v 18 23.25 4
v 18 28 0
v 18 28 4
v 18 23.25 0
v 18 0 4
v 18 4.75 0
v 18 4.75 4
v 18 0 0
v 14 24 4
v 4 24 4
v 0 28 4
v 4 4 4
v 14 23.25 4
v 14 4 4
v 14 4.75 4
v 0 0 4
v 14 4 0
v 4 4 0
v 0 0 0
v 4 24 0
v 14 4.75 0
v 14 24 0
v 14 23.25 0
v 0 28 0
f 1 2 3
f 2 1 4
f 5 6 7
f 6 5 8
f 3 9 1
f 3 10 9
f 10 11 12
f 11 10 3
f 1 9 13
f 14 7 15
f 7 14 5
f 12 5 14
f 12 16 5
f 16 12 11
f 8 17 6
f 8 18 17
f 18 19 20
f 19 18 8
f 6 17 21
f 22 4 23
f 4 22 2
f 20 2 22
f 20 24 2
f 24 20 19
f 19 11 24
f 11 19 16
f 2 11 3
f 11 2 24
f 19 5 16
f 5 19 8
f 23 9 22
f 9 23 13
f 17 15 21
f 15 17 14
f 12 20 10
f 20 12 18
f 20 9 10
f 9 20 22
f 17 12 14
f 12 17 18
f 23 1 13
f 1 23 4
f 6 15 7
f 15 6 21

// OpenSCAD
// Jeff's Simple Parametric Clip (SPC)
//
// Free Software for a Voluntary World
//
// Google "voluntaryism"
//
// Thanks and enjoy!
//
// #####################################################################
//
// #####################################################################
//
// This is free and unencumbered software released into the public domain.
// 
// Anyone is free to copy, modify, publish, use, compile, sell, or
// distribute this software, either in source code form or as a compiled
// binary, for any purpose, commercial or non-commercial, and by any
// means.
// 
// In jurisdictions that recognize copyright laws, the author or authors
// of this software dedicate any and all copyright interest in the
// software to the public domain. We make this dedication for the benefit
// of the public at large and to the detriment of our heirs and
// successors. We intend this dedication to be an overt act of
// relinquishment in perpetuity of all present and future rights to this
// software under copyright law.
// 
// THE SOFTWARE IS PROVIDED "AS IS", WITHOUT WARRANTY OF ANY KIND,
// EXPRESS OR IMPLIED, INCLUDING BUT NOT LIMITED TO THE WARRANTIES OF
// MERCHANTABILITY, FITNESS FOR A PARTICULAR PURPOSE AND NONINFRINGEMENT.
// IN NO EVENT SHALL THE AUTHORS BE LIABLE FOR ANY CLAIM, DAMAGES OR
// OTHER LIABILITY, WHETHER IN AN ACTION OF CONTRACT, TORT OR OTHERWISE,
// ARISING FROM, OUT OF OR IN CONNECTION WITH THE SOFTWARE OR THE USE OR
// OTHER DEALINGS IN THE SOFTWARE.
// 
// For more information, please refer to <http://unlicense.org/>


// Configurable Values
jaw_depth     = 10;
jaw_thickness = 4;
jaw_spacing   = 20;
tooth_height  = .75;

// The Object
module jeffs_spc() {


  // Calculated Values
  body_length = jaw_depth + (jaw_thickness * 2);
  body_width  = jaw_spacing + (jaw_thickness * 2);

  mouth_width = jaw_spacing - (tooth_height * 2);
  mouth_x_pos = jaw_depth + jaw_thickness;
  mouth_y_pos = jaw_thickness + tooth_height;

  difference() {

    // Jaw Body
    cube([body_length, body_width, jaw_thickness]);
  
  
    // Jaw Center Hole
    translate([jaw_thickness, jaw_thickness, -1])
    cube([jaw_depth, jaw_spacing, jaw_thickness + 2]);
  
  
    // Mouth
    translate([mouth_x_pos - 1, mouth_y_pos, -1])
    cube([jaw_thickness + 2, mouth_width, jaw_thickness + 2]);
  }
}

jeffs_spc();
